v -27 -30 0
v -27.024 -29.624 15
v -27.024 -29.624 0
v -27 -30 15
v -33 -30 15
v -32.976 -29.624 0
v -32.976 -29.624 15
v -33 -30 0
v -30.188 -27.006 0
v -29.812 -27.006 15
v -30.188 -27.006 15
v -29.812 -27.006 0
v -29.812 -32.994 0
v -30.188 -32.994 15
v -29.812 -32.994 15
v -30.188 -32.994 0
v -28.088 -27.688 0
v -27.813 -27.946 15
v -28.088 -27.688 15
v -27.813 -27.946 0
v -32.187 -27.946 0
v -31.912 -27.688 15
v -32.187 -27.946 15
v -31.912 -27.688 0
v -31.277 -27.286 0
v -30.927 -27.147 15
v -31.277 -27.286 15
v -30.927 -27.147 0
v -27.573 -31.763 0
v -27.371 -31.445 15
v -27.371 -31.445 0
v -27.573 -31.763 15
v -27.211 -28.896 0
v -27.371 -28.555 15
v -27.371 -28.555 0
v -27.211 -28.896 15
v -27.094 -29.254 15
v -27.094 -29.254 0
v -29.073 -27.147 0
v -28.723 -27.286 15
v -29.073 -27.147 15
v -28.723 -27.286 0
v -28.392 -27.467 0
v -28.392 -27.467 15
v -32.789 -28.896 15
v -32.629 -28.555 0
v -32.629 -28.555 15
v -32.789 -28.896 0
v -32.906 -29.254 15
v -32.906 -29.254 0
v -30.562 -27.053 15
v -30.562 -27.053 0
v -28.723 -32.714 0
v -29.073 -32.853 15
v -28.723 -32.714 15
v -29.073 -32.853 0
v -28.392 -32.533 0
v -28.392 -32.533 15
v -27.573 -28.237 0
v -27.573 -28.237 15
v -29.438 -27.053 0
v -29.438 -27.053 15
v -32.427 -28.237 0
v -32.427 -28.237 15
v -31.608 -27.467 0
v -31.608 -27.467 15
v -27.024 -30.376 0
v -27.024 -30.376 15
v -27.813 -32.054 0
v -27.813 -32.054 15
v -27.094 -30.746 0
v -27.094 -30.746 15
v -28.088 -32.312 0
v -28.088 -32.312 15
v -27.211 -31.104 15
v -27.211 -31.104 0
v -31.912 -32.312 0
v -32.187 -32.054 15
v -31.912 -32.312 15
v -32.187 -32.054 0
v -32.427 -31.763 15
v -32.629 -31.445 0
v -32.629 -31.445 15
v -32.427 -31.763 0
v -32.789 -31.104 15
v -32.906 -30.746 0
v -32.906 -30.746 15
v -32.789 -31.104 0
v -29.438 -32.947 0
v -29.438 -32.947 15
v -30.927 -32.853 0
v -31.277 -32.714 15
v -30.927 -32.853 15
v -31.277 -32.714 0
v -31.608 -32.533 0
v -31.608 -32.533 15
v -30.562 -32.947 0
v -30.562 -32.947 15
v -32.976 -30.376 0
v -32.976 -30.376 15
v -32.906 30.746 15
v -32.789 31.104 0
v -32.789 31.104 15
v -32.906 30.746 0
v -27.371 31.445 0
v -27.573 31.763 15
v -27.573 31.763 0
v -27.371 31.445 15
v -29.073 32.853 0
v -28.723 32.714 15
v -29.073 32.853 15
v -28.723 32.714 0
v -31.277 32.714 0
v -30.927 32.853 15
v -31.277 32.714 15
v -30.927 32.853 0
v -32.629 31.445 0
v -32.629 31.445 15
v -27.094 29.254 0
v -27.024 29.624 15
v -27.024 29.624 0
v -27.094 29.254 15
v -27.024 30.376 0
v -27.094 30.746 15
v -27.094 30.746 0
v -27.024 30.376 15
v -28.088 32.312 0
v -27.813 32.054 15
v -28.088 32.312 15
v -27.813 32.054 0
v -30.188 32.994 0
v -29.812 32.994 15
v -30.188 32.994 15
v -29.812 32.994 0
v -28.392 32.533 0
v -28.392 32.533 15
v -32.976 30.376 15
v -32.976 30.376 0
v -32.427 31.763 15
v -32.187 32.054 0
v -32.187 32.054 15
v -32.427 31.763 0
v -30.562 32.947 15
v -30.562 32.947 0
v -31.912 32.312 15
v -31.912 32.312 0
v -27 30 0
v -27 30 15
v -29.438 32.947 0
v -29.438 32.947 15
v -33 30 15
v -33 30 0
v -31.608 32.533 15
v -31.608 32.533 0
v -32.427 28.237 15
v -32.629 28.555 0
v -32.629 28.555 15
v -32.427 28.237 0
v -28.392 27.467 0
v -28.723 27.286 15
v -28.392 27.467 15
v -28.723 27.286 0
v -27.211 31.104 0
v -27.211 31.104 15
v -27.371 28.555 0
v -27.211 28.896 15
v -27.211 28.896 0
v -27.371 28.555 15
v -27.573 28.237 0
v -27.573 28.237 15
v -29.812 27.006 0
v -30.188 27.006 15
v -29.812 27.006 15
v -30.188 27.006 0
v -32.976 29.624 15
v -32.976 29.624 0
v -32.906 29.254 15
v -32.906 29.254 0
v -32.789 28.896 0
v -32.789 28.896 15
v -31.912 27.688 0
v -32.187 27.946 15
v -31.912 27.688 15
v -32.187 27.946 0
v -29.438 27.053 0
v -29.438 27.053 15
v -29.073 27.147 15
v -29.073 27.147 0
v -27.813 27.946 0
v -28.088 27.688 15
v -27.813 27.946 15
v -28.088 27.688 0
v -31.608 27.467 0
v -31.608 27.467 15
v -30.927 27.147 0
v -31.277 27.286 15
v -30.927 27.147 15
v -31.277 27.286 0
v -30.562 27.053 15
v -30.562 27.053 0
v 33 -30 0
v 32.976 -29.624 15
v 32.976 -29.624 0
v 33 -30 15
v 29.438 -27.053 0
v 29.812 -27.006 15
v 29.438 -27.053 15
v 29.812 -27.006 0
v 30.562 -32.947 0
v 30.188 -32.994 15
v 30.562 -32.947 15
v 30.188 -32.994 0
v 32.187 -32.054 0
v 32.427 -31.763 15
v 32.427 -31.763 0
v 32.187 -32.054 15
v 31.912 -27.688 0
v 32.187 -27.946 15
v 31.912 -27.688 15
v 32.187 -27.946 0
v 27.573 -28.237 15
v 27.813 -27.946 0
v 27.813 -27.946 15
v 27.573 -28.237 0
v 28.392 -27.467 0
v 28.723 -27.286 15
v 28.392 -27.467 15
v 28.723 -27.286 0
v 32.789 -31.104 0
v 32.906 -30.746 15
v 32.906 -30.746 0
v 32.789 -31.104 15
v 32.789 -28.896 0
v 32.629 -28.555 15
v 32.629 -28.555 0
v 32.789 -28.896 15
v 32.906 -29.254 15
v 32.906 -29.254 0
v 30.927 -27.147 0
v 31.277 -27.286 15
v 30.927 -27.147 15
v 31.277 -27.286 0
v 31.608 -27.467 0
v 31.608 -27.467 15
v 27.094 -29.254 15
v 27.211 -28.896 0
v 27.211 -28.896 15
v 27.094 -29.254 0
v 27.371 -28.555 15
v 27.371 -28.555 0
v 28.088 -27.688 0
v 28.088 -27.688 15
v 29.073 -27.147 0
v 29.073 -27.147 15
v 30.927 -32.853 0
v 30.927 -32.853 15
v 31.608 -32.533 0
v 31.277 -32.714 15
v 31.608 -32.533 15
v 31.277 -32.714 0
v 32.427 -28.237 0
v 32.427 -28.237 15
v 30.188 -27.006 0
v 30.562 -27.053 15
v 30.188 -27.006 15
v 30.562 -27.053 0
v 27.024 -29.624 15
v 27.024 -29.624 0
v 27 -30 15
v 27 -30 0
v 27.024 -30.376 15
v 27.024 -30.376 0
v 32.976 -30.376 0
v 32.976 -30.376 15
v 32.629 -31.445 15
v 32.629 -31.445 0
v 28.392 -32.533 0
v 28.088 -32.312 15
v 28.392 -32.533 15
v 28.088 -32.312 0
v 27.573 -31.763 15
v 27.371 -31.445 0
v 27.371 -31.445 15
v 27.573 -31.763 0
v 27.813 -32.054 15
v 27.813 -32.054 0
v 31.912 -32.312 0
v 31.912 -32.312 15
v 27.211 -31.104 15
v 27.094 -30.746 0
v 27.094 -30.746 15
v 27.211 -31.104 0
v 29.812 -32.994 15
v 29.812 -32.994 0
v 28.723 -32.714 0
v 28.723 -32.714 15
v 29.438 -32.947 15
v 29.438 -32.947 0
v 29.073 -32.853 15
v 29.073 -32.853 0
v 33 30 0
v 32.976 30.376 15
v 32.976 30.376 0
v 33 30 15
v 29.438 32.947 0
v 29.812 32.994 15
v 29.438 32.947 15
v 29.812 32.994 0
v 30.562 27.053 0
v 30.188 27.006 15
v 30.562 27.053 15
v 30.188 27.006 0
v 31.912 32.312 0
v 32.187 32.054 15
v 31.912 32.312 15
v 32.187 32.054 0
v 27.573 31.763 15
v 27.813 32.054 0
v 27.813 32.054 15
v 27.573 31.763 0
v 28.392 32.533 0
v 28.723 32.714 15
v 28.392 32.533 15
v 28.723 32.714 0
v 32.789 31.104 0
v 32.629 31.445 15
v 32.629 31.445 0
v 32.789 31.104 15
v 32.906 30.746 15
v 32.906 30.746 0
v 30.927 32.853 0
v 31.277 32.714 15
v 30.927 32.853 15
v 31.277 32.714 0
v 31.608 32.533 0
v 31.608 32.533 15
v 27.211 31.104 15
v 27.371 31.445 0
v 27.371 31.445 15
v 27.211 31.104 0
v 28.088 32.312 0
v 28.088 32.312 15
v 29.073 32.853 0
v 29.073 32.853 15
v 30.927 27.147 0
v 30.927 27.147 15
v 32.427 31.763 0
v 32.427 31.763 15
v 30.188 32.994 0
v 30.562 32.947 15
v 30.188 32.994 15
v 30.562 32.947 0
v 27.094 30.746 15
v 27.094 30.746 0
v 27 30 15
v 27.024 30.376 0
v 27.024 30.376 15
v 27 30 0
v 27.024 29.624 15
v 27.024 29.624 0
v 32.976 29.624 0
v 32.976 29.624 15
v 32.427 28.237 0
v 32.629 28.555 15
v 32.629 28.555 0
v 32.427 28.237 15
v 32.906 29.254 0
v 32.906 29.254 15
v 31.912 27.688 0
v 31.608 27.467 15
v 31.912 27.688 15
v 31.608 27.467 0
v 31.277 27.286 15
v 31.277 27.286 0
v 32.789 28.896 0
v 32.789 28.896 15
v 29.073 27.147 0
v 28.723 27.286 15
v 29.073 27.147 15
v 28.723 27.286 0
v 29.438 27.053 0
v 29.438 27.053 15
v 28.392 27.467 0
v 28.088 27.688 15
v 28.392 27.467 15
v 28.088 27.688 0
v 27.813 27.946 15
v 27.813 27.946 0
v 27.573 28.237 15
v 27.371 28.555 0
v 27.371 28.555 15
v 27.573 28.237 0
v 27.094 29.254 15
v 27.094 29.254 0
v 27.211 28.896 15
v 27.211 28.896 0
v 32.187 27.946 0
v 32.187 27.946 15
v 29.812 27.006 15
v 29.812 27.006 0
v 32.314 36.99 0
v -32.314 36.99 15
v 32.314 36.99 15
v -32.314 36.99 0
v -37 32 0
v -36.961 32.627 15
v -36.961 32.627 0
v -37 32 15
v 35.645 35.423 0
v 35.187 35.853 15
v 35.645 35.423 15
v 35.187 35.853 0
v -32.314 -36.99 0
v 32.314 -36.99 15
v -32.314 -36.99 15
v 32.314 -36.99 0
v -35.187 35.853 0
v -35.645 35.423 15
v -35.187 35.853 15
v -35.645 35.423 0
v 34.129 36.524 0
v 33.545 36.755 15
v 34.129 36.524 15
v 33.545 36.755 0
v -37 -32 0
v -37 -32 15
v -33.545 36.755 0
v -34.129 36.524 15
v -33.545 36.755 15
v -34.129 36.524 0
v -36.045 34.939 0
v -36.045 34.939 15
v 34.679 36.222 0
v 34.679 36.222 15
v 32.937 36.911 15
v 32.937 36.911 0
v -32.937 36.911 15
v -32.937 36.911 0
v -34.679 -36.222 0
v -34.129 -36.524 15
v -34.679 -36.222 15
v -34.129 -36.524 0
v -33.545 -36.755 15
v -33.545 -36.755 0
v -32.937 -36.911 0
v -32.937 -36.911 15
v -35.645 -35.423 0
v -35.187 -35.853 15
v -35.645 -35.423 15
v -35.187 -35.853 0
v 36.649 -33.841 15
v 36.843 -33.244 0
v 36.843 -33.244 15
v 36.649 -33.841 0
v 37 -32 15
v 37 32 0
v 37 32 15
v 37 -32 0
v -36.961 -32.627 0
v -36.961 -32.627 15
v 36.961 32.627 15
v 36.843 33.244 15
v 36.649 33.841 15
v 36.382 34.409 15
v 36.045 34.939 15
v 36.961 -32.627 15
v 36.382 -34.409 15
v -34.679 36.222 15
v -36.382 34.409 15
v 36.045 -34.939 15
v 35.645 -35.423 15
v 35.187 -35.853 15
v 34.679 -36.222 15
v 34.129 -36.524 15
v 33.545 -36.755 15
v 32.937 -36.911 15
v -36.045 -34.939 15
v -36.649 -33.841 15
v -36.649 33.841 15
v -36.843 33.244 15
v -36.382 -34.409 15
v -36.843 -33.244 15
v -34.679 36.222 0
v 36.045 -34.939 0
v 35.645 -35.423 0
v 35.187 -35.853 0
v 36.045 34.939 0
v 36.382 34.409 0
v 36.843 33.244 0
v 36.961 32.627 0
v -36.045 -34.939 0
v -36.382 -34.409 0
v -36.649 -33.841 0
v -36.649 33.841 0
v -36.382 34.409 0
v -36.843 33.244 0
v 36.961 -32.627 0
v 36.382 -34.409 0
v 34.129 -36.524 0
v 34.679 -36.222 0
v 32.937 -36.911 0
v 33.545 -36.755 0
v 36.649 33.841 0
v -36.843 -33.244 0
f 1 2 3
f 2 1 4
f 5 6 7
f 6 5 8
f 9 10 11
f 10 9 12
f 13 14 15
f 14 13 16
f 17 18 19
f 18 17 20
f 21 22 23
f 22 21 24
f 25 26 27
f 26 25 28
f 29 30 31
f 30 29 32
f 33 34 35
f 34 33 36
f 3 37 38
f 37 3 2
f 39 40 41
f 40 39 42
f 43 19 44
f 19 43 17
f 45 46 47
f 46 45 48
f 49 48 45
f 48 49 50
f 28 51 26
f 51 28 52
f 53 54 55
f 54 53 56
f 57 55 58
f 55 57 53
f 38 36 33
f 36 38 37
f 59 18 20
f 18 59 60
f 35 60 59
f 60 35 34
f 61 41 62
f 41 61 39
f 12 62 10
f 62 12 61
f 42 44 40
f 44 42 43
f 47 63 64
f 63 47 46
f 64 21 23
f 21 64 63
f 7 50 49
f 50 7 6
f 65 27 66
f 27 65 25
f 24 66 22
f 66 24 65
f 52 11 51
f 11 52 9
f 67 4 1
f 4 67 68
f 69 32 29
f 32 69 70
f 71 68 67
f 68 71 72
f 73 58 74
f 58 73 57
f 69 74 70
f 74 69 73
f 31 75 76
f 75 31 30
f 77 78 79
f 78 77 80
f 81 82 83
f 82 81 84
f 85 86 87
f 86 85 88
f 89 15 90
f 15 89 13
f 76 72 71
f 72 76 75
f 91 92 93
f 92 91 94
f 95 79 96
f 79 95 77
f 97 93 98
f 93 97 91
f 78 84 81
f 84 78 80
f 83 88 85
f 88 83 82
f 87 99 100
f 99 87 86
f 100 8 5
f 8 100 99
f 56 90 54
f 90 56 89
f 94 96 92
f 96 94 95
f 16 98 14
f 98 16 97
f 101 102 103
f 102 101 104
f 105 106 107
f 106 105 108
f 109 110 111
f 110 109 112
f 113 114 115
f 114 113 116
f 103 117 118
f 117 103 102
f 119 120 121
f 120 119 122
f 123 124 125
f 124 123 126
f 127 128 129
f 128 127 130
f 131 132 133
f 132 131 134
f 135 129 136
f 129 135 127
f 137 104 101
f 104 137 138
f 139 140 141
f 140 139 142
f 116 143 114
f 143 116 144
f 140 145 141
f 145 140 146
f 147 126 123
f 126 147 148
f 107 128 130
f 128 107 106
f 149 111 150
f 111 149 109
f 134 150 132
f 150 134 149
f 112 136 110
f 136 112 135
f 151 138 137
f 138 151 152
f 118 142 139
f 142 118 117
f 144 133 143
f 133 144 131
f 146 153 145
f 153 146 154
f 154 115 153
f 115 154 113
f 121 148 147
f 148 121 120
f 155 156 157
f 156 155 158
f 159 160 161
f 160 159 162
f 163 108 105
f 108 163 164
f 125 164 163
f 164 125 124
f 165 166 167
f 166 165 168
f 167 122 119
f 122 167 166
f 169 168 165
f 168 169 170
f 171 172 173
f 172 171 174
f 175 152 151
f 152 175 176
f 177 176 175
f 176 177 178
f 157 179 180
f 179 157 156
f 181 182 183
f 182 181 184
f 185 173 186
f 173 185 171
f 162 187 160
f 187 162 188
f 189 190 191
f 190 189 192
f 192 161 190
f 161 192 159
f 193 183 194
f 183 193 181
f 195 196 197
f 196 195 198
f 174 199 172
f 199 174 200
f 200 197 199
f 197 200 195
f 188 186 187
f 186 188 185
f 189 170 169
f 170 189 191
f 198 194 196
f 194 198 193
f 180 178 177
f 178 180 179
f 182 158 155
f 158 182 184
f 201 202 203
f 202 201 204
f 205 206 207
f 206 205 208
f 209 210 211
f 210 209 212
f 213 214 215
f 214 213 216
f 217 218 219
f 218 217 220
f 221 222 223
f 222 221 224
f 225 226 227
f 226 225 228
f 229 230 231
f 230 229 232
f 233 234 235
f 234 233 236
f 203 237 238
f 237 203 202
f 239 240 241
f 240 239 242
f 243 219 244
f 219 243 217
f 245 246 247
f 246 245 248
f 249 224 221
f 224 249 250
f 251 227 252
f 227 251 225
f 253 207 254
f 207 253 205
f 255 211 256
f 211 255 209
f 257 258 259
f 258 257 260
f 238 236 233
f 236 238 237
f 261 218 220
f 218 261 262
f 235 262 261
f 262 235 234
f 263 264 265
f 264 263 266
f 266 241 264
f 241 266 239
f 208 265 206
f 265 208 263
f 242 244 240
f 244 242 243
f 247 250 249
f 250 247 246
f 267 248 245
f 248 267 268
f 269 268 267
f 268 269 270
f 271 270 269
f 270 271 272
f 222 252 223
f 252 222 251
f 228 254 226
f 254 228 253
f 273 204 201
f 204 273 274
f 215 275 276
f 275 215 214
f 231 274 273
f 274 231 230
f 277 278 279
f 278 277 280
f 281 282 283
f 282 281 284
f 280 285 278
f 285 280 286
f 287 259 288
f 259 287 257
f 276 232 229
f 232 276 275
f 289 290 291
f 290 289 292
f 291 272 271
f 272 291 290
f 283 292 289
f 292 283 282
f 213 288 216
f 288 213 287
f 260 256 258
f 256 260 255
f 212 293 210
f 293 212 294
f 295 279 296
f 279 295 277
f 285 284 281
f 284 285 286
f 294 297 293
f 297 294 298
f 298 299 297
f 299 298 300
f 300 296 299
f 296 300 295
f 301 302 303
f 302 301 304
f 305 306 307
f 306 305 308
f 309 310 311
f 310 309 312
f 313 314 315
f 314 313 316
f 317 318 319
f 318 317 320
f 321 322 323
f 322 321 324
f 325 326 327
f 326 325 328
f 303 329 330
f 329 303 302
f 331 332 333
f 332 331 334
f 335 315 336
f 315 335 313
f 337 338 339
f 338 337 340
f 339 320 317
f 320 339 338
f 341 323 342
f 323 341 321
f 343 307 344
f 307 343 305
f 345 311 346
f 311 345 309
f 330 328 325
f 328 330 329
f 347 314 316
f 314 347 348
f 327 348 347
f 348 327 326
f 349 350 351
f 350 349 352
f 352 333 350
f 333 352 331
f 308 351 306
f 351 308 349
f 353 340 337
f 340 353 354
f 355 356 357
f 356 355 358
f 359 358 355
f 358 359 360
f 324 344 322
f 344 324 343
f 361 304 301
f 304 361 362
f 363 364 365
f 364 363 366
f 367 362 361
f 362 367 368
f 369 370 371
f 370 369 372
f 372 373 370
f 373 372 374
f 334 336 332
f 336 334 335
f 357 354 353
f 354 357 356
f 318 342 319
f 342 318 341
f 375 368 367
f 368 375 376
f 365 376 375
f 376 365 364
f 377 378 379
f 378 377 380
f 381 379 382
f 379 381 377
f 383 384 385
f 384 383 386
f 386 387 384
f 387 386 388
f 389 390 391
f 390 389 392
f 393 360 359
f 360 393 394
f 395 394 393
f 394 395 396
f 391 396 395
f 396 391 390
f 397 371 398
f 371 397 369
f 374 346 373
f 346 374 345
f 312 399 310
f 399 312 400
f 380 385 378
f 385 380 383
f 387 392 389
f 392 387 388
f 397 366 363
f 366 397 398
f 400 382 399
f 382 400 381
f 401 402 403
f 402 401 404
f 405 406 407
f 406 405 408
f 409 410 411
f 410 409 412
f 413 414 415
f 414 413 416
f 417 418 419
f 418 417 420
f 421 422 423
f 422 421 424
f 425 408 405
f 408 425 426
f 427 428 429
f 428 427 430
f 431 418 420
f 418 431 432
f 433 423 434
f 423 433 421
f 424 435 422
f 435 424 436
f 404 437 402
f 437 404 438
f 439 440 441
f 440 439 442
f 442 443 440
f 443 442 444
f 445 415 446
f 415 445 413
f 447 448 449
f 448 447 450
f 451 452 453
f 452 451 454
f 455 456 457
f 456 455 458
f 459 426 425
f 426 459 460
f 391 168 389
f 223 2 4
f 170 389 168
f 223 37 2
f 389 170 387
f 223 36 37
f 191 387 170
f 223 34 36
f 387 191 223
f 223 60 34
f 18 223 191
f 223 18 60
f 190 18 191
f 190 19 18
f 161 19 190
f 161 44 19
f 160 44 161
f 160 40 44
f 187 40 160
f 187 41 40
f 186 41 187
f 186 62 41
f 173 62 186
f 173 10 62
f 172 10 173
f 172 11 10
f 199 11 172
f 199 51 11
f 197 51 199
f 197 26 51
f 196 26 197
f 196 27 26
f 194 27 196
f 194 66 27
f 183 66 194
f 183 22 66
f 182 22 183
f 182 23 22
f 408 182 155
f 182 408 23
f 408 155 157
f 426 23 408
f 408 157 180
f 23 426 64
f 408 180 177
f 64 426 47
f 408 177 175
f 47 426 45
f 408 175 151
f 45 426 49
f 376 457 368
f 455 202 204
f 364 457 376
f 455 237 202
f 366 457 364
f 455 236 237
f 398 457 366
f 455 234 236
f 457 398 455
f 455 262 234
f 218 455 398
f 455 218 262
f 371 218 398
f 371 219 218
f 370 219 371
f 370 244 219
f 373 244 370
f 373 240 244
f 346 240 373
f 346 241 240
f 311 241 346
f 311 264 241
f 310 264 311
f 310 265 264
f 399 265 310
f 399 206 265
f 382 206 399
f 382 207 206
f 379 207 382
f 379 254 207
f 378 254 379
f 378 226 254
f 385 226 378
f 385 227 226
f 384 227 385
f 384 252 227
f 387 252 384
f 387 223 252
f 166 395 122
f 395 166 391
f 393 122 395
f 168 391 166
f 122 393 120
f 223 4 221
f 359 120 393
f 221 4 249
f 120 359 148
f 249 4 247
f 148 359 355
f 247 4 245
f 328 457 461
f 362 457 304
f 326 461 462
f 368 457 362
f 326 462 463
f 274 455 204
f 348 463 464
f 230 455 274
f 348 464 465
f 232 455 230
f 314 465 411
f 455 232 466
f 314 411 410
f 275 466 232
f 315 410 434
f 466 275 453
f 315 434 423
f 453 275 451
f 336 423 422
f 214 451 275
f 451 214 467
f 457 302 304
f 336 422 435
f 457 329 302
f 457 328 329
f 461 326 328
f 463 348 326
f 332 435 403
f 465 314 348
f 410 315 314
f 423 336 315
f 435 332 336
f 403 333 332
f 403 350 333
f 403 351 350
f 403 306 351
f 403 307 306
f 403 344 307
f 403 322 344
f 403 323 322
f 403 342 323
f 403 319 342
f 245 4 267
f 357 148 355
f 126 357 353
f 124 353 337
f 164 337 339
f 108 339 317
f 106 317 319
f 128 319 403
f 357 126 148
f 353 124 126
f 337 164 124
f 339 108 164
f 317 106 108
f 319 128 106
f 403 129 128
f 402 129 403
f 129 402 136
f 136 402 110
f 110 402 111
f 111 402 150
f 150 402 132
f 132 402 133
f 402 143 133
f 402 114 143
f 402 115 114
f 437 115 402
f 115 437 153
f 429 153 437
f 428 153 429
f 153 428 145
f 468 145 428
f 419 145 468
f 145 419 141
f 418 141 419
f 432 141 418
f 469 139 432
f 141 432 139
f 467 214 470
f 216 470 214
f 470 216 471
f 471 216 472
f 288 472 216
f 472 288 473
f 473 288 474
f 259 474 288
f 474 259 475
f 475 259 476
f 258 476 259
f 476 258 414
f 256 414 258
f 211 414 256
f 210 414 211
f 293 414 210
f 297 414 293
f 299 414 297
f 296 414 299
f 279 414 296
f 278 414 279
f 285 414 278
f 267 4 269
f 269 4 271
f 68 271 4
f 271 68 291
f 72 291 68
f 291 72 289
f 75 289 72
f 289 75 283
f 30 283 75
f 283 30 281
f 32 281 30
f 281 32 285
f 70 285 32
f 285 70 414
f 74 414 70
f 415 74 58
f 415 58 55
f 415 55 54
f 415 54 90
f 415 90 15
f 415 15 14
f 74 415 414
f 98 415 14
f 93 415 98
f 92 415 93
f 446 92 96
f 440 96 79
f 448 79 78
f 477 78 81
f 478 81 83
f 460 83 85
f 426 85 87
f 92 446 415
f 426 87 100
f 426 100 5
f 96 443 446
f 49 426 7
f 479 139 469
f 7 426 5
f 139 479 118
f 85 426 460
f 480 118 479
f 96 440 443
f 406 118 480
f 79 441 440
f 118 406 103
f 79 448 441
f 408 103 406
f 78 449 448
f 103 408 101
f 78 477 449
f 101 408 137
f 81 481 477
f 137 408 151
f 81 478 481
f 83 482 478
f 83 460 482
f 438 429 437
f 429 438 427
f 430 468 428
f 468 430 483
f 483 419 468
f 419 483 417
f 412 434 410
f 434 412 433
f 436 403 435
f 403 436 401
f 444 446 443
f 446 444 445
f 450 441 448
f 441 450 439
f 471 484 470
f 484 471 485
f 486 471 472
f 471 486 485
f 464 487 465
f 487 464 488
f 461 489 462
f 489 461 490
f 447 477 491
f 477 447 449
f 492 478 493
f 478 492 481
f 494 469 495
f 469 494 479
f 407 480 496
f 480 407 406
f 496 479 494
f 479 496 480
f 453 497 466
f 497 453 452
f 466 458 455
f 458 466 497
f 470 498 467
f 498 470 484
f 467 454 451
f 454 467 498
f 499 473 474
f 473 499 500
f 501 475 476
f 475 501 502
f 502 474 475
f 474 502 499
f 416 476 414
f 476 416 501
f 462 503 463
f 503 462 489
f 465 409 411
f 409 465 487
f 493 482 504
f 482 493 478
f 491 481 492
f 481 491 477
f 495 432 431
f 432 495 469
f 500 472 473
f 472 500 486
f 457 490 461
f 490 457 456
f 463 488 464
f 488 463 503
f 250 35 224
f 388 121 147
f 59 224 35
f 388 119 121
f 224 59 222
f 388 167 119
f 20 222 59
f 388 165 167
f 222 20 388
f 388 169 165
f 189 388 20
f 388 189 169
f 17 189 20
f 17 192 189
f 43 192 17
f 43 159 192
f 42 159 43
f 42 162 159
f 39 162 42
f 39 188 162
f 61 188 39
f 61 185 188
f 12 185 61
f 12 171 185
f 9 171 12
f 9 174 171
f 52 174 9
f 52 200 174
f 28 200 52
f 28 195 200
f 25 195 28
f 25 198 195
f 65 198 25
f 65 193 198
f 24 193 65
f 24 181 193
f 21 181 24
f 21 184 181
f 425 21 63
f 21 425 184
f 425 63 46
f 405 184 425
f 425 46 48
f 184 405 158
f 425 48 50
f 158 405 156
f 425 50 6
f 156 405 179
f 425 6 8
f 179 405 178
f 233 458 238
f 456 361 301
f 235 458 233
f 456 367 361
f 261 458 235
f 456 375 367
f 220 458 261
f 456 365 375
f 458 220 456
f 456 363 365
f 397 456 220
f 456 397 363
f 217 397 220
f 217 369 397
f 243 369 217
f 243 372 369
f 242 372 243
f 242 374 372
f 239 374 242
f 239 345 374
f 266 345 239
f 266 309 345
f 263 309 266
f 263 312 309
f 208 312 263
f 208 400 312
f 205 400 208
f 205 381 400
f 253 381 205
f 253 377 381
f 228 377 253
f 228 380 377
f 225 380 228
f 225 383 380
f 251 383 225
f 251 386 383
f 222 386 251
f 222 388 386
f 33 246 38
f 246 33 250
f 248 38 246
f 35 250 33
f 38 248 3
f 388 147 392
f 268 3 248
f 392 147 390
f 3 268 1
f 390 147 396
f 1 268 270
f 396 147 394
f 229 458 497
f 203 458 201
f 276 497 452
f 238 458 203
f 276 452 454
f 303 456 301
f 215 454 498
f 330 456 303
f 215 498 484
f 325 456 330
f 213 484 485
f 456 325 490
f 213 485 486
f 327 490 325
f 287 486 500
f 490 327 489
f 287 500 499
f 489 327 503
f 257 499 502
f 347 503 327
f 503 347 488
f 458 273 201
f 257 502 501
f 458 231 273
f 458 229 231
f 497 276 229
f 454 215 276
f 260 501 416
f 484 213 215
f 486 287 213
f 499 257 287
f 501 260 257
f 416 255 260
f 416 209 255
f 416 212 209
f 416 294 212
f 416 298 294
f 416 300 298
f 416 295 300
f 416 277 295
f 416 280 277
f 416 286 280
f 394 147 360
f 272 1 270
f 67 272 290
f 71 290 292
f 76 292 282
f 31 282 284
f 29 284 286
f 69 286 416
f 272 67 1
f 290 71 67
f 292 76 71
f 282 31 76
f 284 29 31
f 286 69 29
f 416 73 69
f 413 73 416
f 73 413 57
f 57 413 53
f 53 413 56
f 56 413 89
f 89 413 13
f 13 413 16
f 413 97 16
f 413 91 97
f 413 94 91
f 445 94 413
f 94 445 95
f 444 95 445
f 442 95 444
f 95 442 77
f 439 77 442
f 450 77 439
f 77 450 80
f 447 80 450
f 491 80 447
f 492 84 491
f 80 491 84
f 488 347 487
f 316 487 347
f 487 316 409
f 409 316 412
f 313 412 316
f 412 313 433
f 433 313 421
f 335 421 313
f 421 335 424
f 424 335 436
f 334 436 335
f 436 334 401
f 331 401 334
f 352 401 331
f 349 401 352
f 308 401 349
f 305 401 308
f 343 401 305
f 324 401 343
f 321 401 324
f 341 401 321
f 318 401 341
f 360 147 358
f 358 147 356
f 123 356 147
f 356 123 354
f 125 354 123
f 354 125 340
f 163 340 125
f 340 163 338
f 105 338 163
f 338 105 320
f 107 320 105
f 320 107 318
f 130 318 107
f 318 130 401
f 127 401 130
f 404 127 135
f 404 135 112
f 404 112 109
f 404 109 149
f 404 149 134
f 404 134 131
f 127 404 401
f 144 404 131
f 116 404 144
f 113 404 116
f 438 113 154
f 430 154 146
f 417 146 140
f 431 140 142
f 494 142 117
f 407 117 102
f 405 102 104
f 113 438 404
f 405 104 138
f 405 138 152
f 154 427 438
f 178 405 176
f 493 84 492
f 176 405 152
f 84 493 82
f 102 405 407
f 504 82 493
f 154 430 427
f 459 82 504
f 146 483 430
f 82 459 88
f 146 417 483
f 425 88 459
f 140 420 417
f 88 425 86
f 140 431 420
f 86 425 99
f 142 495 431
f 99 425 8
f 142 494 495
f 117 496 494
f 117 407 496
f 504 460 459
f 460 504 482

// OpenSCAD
$fn = 50;


difference() {
	union() {
		hull() {
			translate(v = [-32.0000000000, 32.0000000000, 0]) {
				cylinder(h = 15, r = 5);
			}
			translate(v = [32.0000000000, 32.0000000000, 0]) {
				cylinder(h = 15, r = 5);
			}
			translate(v = [-32.0000000000, -32.0000000000, 0]) {
				cylinder(h = 15, r = 5);
			}
			translate(v = [32.0000000000, -32.0000000000, 0]) {
				cylinder(h = 15, r = 5);
			}
		}
	}
	union() {
		translate(v = [-30.0000000000, -30.0000000000, -100.0000000000]) {
			cylinder(h = 200, r = 3.0000000000);
		}
		translate(v = [-30.0000000000, 30.0000000000, -100.0000000000]) {
			cylinder(h = 200, r = 3.0000000000);
		}
		translate(v = [30.0000000000, -30.0000000000, -100.0000000000]) {
			cylinder(h = 200, r = 3.0000000000);
		}
		translate(v = [30.0000000000, 30.0000000000, -100.0000000000]) {
			cylinder(h = 200, r = 3.0000000000);
		}
	}
}
